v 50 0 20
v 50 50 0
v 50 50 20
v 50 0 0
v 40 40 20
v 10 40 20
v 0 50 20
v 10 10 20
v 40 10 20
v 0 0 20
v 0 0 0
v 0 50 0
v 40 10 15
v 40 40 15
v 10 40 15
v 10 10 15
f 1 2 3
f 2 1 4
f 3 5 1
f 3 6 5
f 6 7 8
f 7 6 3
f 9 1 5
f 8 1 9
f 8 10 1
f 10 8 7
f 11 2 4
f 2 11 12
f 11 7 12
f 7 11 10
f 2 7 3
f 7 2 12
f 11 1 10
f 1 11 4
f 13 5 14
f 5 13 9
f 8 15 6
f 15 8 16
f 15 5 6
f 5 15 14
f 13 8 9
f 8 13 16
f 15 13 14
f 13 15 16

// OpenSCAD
// Base block with recessed square cavity and sloped edge
module base_block() {
    difference() {
        // Main rectangular block
        cube([50, 50, 20], center = false);
        
        // Recessed square cavity on the top surface
        translate([10, 10, 10]) // Move cavity to the top surface
            cube([30, 30, 10], center = false);
        
        // Sloped edge on one side of the cavity
        translate([10, 10, 10])
            linear_extrude(height = 10)
                polygon(points = [[0, 0], [30, 0], [30, 10], [10, 30], [0, 30]]);
    }
}

// Top plate
module top_plate() {
    // Adjusted thickness and position to fit into the recessed cavity
    translate([10, 10, 10]) // Position inside the recessed cavity
        cube([30, 30, 5], center = false); // Reduced thickness
}

// Assemble the components
module assembly() {
    base_block();
    top_plate();
}

// Render the assembly
assembly();
